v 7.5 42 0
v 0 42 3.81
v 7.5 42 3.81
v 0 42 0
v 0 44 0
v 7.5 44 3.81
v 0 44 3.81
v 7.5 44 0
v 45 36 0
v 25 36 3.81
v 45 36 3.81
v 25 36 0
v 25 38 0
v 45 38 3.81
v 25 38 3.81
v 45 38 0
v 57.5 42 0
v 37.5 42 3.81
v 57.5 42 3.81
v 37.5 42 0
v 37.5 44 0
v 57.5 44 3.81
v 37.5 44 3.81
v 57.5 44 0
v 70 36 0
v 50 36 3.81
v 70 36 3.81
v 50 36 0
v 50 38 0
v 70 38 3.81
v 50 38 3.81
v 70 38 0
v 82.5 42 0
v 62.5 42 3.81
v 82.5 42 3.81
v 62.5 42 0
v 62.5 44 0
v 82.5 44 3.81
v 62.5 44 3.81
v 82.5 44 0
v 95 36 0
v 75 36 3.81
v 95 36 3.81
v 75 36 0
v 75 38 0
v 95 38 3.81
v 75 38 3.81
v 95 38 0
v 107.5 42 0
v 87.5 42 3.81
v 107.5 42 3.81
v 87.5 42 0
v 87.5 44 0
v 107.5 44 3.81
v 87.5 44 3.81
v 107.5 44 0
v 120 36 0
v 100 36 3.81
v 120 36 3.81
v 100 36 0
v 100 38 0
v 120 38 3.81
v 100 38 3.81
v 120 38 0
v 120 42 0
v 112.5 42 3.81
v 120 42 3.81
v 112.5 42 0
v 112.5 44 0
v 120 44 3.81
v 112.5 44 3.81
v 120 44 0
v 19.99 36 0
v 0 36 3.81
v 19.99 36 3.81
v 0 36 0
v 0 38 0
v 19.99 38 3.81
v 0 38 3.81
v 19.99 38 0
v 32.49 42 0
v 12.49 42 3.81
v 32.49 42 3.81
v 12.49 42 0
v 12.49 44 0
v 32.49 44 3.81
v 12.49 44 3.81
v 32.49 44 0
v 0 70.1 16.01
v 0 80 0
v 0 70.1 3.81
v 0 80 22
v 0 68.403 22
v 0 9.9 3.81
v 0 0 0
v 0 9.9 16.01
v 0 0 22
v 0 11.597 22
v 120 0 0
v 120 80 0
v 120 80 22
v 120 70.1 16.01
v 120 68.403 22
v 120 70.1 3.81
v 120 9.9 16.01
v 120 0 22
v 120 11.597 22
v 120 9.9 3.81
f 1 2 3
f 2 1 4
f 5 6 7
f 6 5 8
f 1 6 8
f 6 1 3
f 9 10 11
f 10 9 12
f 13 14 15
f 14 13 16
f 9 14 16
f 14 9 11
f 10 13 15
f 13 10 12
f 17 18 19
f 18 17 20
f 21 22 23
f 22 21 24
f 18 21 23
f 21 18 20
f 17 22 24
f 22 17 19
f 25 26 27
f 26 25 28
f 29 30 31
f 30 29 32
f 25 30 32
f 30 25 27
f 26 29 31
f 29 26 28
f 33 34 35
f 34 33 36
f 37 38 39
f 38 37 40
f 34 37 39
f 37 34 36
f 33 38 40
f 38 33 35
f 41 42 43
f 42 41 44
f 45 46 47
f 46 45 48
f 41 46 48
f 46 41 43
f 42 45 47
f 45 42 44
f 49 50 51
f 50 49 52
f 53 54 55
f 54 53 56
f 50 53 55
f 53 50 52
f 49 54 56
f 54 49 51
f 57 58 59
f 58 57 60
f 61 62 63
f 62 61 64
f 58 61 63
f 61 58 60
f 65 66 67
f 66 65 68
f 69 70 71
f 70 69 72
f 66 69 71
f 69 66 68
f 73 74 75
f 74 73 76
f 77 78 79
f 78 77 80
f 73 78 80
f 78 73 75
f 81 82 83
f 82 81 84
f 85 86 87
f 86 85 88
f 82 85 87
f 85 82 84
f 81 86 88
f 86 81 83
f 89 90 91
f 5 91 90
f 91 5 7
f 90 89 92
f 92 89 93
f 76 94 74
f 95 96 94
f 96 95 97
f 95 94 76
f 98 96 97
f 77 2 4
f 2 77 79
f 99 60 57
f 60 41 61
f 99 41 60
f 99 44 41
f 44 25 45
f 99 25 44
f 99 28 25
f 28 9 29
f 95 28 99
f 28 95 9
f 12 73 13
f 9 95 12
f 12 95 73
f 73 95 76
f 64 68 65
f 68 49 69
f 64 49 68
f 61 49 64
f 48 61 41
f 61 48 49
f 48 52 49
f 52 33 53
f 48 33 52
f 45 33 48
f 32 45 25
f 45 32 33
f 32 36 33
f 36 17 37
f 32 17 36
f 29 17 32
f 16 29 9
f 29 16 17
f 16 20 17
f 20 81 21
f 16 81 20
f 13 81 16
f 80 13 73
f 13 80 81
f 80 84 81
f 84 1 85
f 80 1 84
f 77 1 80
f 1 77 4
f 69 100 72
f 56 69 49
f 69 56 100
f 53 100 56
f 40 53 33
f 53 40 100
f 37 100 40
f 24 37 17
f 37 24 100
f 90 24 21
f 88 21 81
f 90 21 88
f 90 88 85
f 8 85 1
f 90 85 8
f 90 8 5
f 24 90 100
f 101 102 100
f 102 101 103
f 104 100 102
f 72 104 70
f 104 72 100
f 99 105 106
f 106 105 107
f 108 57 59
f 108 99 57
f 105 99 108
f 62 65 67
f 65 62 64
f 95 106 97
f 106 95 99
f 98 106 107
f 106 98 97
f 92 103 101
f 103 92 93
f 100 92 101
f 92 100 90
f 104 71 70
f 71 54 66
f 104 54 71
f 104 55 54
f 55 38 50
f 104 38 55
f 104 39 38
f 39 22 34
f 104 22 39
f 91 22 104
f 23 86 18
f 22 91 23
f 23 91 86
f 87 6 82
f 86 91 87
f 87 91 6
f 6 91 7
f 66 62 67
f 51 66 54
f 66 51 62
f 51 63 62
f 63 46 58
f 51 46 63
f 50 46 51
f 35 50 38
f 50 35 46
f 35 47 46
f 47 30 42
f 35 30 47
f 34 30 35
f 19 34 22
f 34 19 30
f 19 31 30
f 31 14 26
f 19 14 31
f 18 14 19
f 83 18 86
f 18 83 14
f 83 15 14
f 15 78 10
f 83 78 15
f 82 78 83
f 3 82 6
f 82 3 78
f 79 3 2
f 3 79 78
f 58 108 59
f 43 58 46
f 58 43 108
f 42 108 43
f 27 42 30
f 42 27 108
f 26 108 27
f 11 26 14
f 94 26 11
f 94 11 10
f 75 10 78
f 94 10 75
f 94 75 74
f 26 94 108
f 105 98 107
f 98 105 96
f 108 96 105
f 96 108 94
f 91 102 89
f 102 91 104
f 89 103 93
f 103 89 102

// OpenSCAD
module BendyCutOuts(){
	cube([2, 20, 30]);
	translate([6, 12.5, 0]) {
		cube([2, 20, 30]);
	}
}

module ChairBumper(){
    difference(){
        cube([120, 80, 22]);
        
        translate([-5, 70.1, 18.19]){
            rotate([-90, 0, -90]){
                linear_extrude(height = 130){
                    polygon([[0, 0], [60.2, 0], [60.2, 12.2],  [58.5, 18.2], [1.7, 18.2], [0, 12.2]]);
                }
            }
        }

		  translate([-25, 44, -1]){
				rotate([0, 0, -90]){
					BendyCutOuts();
				}
		  }
		  translate([-.01, 44, -1]){
				rotate([0, 0, -90]){
					BendyCutOuts();
				}
		  }
		  translate([25, 44, -1]){
				rotate([0, 0, -90]){
					BendyCutOuts();
				}
		  }
		  translate([50, 44, -1]){
				rotate([0, 0, -90]){
					BendyCutOuts();
				}
		  }
		  translate([75, 44, -1]){
				rotate([0, 0, -90]){
					BendyCutOuts();
				}
		  }
		  translate([100, 44, -1]){
				rotate([0, 0, -90]){
					BendyCutOuts();
				}
		  }
    }
}

module Main(){
    translate([0, 80, 22]){
        rotate([180, 0, 0]){
            ChairBumper();
        }
    }
}

Main();
